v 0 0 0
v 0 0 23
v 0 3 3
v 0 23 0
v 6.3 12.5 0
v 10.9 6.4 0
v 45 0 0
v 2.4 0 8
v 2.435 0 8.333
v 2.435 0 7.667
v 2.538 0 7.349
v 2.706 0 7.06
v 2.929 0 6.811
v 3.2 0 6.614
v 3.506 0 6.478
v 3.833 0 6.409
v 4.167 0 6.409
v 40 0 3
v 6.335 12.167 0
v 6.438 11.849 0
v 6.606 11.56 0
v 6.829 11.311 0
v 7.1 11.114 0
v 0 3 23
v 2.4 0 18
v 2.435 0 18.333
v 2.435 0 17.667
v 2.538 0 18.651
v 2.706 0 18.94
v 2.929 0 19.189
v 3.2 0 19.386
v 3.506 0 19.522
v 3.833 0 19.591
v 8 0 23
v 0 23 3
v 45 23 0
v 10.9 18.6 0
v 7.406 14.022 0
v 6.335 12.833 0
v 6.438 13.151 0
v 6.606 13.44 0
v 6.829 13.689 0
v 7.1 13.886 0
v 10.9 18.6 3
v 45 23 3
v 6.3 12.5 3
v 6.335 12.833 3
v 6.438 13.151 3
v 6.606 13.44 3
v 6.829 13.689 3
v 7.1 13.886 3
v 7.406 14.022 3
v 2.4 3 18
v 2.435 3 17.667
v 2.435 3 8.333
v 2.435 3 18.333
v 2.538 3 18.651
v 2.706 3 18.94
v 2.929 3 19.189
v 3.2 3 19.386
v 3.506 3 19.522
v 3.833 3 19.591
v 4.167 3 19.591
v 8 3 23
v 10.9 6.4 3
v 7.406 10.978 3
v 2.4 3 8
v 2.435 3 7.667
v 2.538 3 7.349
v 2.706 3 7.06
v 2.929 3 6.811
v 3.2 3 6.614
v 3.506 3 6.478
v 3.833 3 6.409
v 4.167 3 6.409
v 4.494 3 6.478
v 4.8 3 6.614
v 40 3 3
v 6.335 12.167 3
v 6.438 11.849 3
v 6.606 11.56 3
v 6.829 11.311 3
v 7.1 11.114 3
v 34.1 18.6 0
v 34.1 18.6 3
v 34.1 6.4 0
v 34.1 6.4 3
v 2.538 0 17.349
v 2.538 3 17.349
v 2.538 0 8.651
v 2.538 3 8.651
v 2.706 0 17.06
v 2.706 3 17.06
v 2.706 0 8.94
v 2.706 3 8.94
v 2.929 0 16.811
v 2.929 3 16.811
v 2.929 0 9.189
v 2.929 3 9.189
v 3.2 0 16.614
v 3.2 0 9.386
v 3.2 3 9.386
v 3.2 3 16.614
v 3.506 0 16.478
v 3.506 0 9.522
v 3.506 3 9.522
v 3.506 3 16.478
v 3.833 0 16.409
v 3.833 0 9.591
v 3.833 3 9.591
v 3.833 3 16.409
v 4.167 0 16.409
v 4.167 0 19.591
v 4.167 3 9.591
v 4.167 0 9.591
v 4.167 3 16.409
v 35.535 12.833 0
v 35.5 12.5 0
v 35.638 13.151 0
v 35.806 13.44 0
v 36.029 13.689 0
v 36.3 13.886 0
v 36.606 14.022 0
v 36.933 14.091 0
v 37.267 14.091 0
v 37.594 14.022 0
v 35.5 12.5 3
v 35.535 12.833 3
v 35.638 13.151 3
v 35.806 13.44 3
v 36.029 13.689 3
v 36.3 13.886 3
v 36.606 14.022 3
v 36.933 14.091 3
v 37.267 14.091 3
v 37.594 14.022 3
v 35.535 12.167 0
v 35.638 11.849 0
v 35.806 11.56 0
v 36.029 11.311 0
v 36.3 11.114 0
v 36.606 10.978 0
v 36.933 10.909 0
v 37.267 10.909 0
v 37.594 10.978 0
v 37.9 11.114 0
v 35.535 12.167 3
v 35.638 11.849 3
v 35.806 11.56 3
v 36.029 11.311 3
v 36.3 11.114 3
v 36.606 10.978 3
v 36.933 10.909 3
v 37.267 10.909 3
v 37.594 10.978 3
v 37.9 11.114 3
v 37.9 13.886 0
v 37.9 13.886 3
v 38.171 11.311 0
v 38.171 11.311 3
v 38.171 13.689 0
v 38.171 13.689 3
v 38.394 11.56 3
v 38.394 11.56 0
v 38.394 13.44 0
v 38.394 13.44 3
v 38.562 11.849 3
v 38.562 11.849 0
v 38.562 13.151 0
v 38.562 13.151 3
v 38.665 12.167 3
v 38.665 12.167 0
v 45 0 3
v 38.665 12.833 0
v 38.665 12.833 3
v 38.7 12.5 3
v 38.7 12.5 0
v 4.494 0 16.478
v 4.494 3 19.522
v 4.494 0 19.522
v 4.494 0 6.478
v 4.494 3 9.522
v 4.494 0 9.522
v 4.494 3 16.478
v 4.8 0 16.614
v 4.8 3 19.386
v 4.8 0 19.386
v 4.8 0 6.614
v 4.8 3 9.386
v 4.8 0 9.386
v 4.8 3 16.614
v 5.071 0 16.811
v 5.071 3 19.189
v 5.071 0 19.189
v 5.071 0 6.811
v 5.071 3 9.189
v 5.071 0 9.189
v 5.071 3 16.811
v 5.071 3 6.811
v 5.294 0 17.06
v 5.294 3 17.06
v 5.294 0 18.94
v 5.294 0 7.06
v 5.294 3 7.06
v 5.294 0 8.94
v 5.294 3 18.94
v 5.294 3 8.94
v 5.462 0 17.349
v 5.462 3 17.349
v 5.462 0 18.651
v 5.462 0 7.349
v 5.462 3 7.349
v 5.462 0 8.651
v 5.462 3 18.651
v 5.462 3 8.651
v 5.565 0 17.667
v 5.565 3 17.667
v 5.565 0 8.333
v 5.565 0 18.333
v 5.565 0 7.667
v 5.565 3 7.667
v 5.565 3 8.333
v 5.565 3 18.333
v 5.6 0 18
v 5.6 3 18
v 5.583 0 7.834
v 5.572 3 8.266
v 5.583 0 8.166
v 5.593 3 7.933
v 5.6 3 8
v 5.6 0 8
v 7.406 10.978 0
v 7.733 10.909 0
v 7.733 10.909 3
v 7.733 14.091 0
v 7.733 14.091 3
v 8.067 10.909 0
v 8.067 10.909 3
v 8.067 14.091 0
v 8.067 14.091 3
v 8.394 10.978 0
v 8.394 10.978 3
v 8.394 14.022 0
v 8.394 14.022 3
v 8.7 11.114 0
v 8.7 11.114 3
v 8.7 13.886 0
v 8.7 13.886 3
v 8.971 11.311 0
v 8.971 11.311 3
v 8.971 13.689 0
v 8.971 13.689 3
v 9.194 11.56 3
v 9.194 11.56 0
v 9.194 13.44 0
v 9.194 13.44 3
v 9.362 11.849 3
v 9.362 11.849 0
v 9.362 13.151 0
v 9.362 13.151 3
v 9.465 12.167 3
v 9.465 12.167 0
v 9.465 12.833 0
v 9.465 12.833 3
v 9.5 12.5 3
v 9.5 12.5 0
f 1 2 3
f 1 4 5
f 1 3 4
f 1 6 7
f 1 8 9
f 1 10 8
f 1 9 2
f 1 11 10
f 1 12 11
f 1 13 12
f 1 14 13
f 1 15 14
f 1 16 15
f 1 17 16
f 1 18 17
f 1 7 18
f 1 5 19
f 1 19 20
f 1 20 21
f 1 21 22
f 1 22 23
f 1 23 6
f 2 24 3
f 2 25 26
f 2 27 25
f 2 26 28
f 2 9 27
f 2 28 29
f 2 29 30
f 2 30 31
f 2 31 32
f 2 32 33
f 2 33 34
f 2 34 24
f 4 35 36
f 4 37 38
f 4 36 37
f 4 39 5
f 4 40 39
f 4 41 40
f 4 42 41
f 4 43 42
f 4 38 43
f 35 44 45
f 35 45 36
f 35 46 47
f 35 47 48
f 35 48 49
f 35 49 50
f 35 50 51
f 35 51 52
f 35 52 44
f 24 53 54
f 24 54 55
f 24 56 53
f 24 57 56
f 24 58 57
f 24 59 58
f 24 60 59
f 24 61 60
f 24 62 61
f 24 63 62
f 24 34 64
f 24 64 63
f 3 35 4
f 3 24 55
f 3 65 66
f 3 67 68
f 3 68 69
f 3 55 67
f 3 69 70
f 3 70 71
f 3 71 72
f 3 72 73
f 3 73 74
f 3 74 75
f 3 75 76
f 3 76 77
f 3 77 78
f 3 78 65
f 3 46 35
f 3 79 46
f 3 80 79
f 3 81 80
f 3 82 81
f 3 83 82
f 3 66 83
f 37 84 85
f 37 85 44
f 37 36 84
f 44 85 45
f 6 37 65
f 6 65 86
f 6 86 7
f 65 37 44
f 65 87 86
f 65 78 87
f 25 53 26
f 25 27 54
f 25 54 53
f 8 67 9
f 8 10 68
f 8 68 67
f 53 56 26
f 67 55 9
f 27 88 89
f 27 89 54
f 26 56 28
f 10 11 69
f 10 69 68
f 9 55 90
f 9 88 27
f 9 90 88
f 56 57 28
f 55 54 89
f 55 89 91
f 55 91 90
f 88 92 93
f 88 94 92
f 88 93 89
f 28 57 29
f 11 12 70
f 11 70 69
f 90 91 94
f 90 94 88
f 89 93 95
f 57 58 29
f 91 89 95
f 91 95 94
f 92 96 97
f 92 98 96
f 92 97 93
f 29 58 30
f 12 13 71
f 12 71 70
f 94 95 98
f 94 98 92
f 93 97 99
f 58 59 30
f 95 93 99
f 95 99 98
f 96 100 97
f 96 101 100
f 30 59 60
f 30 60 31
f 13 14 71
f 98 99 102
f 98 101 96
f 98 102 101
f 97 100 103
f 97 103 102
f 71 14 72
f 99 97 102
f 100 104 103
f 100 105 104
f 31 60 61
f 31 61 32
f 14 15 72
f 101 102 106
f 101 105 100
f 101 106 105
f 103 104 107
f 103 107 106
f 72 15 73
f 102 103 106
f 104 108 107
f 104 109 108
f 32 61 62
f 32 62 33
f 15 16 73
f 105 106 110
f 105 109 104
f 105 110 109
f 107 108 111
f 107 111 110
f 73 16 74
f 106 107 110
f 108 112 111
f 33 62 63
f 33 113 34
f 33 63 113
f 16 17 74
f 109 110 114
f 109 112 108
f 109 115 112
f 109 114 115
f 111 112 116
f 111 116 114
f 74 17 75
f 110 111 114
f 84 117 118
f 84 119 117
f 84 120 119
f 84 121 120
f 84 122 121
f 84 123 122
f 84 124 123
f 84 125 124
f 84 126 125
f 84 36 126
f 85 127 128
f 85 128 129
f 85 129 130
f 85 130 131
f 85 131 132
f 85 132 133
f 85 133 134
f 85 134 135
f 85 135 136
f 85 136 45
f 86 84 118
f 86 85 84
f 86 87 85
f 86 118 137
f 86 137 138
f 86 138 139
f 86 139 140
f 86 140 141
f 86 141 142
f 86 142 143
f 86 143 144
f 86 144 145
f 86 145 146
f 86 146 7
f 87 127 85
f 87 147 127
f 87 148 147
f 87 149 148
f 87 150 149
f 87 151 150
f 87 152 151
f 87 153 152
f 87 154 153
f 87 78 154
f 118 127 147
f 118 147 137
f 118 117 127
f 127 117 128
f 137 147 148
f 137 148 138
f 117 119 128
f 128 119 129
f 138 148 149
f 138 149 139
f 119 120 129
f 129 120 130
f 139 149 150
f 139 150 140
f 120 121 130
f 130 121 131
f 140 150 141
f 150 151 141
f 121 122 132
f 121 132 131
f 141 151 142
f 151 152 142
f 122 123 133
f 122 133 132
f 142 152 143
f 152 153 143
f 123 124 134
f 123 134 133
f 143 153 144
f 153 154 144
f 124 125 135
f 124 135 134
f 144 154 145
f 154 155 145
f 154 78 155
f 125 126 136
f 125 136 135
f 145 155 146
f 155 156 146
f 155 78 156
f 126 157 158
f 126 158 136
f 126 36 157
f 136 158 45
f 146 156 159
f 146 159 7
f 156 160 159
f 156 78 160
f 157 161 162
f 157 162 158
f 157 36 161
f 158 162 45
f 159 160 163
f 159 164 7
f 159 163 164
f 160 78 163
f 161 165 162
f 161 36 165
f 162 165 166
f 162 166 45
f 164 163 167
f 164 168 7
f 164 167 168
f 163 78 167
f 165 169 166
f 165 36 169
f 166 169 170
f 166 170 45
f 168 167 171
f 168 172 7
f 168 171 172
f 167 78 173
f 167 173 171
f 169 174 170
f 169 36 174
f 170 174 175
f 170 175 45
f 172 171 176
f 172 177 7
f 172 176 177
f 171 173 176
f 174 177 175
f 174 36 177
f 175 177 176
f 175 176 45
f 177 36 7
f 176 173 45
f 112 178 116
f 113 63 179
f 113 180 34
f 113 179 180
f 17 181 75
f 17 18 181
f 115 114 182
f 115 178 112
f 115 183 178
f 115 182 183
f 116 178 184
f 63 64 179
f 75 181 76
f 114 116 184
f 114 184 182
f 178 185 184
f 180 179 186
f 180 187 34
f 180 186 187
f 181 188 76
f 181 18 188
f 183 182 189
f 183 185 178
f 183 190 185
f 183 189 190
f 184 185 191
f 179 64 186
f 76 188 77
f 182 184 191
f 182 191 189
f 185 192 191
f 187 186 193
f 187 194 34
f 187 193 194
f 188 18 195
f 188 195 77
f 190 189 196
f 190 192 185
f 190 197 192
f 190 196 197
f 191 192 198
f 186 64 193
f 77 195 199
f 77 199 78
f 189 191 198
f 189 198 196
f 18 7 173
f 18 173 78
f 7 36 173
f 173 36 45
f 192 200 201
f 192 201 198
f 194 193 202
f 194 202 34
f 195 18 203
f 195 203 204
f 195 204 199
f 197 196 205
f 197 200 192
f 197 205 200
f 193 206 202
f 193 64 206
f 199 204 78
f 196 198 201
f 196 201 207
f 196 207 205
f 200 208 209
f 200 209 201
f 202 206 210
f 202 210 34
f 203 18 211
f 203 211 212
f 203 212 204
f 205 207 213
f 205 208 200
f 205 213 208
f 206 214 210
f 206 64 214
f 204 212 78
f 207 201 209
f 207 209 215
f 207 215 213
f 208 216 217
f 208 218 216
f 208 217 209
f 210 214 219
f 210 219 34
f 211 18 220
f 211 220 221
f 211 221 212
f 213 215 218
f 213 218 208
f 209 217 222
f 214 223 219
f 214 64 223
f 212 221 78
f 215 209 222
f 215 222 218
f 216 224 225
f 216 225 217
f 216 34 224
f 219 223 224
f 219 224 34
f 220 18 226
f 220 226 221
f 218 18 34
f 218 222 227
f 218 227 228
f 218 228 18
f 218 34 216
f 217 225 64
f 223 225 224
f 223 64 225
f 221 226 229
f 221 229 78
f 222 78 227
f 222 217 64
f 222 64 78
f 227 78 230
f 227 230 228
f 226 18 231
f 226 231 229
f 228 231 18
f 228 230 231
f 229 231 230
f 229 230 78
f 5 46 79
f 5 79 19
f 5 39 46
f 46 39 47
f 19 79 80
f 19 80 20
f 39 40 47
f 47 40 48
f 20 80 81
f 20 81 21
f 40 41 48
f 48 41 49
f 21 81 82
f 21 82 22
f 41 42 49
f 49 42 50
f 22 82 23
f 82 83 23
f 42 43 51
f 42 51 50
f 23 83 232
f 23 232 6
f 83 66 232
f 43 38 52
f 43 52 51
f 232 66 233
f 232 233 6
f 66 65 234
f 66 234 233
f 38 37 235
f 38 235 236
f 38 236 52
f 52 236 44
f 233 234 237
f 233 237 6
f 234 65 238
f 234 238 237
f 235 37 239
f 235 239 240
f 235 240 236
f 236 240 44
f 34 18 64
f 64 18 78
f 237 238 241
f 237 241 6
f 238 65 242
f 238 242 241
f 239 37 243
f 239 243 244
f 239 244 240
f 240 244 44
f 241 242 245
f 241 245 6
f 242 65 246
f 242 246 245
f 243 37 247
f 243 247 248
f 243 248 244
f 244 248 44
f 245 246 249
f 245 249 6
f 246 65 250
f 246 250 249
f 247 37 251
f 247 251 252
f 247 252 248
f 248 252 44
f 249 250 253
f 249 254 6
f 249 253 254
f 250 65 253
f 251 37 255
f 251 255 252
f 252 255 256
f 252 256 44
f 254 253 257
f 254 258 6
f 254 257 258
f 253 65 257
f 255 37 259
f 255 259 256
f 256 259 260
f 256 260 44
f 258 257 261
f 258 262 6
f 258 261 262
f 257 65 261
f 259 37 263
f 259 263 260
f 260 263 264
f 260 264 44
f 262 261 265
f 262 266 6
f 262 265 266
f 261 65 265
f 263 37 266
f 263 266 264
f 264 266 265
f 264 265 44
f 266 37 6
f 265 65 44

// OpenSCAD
//========== Tahlo predniho kolecka ==========//
include <../parameters.scad>

module 888_2029() {

screw_distance = 10;


difference(){
    union(){
        hull(){
            cube([8, 3, 23]);
            cube([40, 3, 3]);
        }
        cube([45, 23, 3]);
    }

    translate([4, 0, 8])
        rotate([90, 0, 0])
            cylinder(d = M3_screw_diameter, h = 10, $fn = 30, center = true);

    translate([4, 0, 8+10])
        rotate([90, 0, 0])
            cylinder(d = M3_screw_diameter, h = 10, $fn = 30, center = true);


        translate([45/2, 25/2, 0]){
            cube([DS313MG_M, DS313MG_A, 10], center = true);

            translate([(DS313MG_M+6)/2,0, 0])
                cylinder(d = M3_screw_diameter, h = 10, $fn = 30);

            translate([-(DS313MG_M+6)/2, 0, 0])
                cylinder(d = M3_screw_diameter, h = 10, $fn = 30);
        }

    /* #union(){
        translate([main_tube_outer_diameter-vyska/2+servo_lever, 0, (DS313MG_J-DS313MG_M)/2+DS313MG_M-servo_overhang+fix_screw_distance])
            rotate([-90, 0, 0])
                cylinder(d=M2_5_screw_diameter, h=100, $fn=15);

        translate([main_tube_outer_diameter-vyska/2+servo_lever, 0, (DS313MG_J-DS313MG_M)/2+DS313MG_M-servo_overhang+fix_screw_distance])
            rotate([90, 0, 0])
                cylinder(d=4, h=100, $fn=15);

        translate([main_tube_outer_diameter-vyska/2+servo_lever, 2.5+DS313MG_G, (DS313MG_J-DS313MG_M)/2+DS313MG_M-servo_overhang+fix_screw_distance])
            rotate([-90, 0, 0])
                cylinder(d=M2_5_nut_diameter, h=M2_5_nut_height, $fn=6);

        translate([main_tube_outer_diameter-vyska/2+servo_lever, 2.5+DS313MG_G, (DS313MG_J-DS313MG_M)/2+DS313MG_M-servo_overhang-M2_5_nut_pocket/2+fix_screw_distance])
            cube([100, M2_5_nut_height, M2_5_nut_pocket]);

        translate([main_tube_outer_diameter-vyska/2+servo_lever-DS313MG_A/2, -2.5, -servo_overhang])
            cube([DS313MG_A, DS313MG_G, DS313MG_J]);

        translate([main_tube_outer_diameter-vyska/2+servo_lever-DS313MG_A/2, 0, -servo_overhang])
            cube([DS313MG_A+0.1, 100, (DS313MG_J-DS313MG_M)/2+DS313MG_M]);

        translate([main_tube_outer_diameter-vyska/2, -2.5, -servo_overhang])
            cube([servo_lever, 5, DS313MG_J]);
        } */

}


}

888_2029();
